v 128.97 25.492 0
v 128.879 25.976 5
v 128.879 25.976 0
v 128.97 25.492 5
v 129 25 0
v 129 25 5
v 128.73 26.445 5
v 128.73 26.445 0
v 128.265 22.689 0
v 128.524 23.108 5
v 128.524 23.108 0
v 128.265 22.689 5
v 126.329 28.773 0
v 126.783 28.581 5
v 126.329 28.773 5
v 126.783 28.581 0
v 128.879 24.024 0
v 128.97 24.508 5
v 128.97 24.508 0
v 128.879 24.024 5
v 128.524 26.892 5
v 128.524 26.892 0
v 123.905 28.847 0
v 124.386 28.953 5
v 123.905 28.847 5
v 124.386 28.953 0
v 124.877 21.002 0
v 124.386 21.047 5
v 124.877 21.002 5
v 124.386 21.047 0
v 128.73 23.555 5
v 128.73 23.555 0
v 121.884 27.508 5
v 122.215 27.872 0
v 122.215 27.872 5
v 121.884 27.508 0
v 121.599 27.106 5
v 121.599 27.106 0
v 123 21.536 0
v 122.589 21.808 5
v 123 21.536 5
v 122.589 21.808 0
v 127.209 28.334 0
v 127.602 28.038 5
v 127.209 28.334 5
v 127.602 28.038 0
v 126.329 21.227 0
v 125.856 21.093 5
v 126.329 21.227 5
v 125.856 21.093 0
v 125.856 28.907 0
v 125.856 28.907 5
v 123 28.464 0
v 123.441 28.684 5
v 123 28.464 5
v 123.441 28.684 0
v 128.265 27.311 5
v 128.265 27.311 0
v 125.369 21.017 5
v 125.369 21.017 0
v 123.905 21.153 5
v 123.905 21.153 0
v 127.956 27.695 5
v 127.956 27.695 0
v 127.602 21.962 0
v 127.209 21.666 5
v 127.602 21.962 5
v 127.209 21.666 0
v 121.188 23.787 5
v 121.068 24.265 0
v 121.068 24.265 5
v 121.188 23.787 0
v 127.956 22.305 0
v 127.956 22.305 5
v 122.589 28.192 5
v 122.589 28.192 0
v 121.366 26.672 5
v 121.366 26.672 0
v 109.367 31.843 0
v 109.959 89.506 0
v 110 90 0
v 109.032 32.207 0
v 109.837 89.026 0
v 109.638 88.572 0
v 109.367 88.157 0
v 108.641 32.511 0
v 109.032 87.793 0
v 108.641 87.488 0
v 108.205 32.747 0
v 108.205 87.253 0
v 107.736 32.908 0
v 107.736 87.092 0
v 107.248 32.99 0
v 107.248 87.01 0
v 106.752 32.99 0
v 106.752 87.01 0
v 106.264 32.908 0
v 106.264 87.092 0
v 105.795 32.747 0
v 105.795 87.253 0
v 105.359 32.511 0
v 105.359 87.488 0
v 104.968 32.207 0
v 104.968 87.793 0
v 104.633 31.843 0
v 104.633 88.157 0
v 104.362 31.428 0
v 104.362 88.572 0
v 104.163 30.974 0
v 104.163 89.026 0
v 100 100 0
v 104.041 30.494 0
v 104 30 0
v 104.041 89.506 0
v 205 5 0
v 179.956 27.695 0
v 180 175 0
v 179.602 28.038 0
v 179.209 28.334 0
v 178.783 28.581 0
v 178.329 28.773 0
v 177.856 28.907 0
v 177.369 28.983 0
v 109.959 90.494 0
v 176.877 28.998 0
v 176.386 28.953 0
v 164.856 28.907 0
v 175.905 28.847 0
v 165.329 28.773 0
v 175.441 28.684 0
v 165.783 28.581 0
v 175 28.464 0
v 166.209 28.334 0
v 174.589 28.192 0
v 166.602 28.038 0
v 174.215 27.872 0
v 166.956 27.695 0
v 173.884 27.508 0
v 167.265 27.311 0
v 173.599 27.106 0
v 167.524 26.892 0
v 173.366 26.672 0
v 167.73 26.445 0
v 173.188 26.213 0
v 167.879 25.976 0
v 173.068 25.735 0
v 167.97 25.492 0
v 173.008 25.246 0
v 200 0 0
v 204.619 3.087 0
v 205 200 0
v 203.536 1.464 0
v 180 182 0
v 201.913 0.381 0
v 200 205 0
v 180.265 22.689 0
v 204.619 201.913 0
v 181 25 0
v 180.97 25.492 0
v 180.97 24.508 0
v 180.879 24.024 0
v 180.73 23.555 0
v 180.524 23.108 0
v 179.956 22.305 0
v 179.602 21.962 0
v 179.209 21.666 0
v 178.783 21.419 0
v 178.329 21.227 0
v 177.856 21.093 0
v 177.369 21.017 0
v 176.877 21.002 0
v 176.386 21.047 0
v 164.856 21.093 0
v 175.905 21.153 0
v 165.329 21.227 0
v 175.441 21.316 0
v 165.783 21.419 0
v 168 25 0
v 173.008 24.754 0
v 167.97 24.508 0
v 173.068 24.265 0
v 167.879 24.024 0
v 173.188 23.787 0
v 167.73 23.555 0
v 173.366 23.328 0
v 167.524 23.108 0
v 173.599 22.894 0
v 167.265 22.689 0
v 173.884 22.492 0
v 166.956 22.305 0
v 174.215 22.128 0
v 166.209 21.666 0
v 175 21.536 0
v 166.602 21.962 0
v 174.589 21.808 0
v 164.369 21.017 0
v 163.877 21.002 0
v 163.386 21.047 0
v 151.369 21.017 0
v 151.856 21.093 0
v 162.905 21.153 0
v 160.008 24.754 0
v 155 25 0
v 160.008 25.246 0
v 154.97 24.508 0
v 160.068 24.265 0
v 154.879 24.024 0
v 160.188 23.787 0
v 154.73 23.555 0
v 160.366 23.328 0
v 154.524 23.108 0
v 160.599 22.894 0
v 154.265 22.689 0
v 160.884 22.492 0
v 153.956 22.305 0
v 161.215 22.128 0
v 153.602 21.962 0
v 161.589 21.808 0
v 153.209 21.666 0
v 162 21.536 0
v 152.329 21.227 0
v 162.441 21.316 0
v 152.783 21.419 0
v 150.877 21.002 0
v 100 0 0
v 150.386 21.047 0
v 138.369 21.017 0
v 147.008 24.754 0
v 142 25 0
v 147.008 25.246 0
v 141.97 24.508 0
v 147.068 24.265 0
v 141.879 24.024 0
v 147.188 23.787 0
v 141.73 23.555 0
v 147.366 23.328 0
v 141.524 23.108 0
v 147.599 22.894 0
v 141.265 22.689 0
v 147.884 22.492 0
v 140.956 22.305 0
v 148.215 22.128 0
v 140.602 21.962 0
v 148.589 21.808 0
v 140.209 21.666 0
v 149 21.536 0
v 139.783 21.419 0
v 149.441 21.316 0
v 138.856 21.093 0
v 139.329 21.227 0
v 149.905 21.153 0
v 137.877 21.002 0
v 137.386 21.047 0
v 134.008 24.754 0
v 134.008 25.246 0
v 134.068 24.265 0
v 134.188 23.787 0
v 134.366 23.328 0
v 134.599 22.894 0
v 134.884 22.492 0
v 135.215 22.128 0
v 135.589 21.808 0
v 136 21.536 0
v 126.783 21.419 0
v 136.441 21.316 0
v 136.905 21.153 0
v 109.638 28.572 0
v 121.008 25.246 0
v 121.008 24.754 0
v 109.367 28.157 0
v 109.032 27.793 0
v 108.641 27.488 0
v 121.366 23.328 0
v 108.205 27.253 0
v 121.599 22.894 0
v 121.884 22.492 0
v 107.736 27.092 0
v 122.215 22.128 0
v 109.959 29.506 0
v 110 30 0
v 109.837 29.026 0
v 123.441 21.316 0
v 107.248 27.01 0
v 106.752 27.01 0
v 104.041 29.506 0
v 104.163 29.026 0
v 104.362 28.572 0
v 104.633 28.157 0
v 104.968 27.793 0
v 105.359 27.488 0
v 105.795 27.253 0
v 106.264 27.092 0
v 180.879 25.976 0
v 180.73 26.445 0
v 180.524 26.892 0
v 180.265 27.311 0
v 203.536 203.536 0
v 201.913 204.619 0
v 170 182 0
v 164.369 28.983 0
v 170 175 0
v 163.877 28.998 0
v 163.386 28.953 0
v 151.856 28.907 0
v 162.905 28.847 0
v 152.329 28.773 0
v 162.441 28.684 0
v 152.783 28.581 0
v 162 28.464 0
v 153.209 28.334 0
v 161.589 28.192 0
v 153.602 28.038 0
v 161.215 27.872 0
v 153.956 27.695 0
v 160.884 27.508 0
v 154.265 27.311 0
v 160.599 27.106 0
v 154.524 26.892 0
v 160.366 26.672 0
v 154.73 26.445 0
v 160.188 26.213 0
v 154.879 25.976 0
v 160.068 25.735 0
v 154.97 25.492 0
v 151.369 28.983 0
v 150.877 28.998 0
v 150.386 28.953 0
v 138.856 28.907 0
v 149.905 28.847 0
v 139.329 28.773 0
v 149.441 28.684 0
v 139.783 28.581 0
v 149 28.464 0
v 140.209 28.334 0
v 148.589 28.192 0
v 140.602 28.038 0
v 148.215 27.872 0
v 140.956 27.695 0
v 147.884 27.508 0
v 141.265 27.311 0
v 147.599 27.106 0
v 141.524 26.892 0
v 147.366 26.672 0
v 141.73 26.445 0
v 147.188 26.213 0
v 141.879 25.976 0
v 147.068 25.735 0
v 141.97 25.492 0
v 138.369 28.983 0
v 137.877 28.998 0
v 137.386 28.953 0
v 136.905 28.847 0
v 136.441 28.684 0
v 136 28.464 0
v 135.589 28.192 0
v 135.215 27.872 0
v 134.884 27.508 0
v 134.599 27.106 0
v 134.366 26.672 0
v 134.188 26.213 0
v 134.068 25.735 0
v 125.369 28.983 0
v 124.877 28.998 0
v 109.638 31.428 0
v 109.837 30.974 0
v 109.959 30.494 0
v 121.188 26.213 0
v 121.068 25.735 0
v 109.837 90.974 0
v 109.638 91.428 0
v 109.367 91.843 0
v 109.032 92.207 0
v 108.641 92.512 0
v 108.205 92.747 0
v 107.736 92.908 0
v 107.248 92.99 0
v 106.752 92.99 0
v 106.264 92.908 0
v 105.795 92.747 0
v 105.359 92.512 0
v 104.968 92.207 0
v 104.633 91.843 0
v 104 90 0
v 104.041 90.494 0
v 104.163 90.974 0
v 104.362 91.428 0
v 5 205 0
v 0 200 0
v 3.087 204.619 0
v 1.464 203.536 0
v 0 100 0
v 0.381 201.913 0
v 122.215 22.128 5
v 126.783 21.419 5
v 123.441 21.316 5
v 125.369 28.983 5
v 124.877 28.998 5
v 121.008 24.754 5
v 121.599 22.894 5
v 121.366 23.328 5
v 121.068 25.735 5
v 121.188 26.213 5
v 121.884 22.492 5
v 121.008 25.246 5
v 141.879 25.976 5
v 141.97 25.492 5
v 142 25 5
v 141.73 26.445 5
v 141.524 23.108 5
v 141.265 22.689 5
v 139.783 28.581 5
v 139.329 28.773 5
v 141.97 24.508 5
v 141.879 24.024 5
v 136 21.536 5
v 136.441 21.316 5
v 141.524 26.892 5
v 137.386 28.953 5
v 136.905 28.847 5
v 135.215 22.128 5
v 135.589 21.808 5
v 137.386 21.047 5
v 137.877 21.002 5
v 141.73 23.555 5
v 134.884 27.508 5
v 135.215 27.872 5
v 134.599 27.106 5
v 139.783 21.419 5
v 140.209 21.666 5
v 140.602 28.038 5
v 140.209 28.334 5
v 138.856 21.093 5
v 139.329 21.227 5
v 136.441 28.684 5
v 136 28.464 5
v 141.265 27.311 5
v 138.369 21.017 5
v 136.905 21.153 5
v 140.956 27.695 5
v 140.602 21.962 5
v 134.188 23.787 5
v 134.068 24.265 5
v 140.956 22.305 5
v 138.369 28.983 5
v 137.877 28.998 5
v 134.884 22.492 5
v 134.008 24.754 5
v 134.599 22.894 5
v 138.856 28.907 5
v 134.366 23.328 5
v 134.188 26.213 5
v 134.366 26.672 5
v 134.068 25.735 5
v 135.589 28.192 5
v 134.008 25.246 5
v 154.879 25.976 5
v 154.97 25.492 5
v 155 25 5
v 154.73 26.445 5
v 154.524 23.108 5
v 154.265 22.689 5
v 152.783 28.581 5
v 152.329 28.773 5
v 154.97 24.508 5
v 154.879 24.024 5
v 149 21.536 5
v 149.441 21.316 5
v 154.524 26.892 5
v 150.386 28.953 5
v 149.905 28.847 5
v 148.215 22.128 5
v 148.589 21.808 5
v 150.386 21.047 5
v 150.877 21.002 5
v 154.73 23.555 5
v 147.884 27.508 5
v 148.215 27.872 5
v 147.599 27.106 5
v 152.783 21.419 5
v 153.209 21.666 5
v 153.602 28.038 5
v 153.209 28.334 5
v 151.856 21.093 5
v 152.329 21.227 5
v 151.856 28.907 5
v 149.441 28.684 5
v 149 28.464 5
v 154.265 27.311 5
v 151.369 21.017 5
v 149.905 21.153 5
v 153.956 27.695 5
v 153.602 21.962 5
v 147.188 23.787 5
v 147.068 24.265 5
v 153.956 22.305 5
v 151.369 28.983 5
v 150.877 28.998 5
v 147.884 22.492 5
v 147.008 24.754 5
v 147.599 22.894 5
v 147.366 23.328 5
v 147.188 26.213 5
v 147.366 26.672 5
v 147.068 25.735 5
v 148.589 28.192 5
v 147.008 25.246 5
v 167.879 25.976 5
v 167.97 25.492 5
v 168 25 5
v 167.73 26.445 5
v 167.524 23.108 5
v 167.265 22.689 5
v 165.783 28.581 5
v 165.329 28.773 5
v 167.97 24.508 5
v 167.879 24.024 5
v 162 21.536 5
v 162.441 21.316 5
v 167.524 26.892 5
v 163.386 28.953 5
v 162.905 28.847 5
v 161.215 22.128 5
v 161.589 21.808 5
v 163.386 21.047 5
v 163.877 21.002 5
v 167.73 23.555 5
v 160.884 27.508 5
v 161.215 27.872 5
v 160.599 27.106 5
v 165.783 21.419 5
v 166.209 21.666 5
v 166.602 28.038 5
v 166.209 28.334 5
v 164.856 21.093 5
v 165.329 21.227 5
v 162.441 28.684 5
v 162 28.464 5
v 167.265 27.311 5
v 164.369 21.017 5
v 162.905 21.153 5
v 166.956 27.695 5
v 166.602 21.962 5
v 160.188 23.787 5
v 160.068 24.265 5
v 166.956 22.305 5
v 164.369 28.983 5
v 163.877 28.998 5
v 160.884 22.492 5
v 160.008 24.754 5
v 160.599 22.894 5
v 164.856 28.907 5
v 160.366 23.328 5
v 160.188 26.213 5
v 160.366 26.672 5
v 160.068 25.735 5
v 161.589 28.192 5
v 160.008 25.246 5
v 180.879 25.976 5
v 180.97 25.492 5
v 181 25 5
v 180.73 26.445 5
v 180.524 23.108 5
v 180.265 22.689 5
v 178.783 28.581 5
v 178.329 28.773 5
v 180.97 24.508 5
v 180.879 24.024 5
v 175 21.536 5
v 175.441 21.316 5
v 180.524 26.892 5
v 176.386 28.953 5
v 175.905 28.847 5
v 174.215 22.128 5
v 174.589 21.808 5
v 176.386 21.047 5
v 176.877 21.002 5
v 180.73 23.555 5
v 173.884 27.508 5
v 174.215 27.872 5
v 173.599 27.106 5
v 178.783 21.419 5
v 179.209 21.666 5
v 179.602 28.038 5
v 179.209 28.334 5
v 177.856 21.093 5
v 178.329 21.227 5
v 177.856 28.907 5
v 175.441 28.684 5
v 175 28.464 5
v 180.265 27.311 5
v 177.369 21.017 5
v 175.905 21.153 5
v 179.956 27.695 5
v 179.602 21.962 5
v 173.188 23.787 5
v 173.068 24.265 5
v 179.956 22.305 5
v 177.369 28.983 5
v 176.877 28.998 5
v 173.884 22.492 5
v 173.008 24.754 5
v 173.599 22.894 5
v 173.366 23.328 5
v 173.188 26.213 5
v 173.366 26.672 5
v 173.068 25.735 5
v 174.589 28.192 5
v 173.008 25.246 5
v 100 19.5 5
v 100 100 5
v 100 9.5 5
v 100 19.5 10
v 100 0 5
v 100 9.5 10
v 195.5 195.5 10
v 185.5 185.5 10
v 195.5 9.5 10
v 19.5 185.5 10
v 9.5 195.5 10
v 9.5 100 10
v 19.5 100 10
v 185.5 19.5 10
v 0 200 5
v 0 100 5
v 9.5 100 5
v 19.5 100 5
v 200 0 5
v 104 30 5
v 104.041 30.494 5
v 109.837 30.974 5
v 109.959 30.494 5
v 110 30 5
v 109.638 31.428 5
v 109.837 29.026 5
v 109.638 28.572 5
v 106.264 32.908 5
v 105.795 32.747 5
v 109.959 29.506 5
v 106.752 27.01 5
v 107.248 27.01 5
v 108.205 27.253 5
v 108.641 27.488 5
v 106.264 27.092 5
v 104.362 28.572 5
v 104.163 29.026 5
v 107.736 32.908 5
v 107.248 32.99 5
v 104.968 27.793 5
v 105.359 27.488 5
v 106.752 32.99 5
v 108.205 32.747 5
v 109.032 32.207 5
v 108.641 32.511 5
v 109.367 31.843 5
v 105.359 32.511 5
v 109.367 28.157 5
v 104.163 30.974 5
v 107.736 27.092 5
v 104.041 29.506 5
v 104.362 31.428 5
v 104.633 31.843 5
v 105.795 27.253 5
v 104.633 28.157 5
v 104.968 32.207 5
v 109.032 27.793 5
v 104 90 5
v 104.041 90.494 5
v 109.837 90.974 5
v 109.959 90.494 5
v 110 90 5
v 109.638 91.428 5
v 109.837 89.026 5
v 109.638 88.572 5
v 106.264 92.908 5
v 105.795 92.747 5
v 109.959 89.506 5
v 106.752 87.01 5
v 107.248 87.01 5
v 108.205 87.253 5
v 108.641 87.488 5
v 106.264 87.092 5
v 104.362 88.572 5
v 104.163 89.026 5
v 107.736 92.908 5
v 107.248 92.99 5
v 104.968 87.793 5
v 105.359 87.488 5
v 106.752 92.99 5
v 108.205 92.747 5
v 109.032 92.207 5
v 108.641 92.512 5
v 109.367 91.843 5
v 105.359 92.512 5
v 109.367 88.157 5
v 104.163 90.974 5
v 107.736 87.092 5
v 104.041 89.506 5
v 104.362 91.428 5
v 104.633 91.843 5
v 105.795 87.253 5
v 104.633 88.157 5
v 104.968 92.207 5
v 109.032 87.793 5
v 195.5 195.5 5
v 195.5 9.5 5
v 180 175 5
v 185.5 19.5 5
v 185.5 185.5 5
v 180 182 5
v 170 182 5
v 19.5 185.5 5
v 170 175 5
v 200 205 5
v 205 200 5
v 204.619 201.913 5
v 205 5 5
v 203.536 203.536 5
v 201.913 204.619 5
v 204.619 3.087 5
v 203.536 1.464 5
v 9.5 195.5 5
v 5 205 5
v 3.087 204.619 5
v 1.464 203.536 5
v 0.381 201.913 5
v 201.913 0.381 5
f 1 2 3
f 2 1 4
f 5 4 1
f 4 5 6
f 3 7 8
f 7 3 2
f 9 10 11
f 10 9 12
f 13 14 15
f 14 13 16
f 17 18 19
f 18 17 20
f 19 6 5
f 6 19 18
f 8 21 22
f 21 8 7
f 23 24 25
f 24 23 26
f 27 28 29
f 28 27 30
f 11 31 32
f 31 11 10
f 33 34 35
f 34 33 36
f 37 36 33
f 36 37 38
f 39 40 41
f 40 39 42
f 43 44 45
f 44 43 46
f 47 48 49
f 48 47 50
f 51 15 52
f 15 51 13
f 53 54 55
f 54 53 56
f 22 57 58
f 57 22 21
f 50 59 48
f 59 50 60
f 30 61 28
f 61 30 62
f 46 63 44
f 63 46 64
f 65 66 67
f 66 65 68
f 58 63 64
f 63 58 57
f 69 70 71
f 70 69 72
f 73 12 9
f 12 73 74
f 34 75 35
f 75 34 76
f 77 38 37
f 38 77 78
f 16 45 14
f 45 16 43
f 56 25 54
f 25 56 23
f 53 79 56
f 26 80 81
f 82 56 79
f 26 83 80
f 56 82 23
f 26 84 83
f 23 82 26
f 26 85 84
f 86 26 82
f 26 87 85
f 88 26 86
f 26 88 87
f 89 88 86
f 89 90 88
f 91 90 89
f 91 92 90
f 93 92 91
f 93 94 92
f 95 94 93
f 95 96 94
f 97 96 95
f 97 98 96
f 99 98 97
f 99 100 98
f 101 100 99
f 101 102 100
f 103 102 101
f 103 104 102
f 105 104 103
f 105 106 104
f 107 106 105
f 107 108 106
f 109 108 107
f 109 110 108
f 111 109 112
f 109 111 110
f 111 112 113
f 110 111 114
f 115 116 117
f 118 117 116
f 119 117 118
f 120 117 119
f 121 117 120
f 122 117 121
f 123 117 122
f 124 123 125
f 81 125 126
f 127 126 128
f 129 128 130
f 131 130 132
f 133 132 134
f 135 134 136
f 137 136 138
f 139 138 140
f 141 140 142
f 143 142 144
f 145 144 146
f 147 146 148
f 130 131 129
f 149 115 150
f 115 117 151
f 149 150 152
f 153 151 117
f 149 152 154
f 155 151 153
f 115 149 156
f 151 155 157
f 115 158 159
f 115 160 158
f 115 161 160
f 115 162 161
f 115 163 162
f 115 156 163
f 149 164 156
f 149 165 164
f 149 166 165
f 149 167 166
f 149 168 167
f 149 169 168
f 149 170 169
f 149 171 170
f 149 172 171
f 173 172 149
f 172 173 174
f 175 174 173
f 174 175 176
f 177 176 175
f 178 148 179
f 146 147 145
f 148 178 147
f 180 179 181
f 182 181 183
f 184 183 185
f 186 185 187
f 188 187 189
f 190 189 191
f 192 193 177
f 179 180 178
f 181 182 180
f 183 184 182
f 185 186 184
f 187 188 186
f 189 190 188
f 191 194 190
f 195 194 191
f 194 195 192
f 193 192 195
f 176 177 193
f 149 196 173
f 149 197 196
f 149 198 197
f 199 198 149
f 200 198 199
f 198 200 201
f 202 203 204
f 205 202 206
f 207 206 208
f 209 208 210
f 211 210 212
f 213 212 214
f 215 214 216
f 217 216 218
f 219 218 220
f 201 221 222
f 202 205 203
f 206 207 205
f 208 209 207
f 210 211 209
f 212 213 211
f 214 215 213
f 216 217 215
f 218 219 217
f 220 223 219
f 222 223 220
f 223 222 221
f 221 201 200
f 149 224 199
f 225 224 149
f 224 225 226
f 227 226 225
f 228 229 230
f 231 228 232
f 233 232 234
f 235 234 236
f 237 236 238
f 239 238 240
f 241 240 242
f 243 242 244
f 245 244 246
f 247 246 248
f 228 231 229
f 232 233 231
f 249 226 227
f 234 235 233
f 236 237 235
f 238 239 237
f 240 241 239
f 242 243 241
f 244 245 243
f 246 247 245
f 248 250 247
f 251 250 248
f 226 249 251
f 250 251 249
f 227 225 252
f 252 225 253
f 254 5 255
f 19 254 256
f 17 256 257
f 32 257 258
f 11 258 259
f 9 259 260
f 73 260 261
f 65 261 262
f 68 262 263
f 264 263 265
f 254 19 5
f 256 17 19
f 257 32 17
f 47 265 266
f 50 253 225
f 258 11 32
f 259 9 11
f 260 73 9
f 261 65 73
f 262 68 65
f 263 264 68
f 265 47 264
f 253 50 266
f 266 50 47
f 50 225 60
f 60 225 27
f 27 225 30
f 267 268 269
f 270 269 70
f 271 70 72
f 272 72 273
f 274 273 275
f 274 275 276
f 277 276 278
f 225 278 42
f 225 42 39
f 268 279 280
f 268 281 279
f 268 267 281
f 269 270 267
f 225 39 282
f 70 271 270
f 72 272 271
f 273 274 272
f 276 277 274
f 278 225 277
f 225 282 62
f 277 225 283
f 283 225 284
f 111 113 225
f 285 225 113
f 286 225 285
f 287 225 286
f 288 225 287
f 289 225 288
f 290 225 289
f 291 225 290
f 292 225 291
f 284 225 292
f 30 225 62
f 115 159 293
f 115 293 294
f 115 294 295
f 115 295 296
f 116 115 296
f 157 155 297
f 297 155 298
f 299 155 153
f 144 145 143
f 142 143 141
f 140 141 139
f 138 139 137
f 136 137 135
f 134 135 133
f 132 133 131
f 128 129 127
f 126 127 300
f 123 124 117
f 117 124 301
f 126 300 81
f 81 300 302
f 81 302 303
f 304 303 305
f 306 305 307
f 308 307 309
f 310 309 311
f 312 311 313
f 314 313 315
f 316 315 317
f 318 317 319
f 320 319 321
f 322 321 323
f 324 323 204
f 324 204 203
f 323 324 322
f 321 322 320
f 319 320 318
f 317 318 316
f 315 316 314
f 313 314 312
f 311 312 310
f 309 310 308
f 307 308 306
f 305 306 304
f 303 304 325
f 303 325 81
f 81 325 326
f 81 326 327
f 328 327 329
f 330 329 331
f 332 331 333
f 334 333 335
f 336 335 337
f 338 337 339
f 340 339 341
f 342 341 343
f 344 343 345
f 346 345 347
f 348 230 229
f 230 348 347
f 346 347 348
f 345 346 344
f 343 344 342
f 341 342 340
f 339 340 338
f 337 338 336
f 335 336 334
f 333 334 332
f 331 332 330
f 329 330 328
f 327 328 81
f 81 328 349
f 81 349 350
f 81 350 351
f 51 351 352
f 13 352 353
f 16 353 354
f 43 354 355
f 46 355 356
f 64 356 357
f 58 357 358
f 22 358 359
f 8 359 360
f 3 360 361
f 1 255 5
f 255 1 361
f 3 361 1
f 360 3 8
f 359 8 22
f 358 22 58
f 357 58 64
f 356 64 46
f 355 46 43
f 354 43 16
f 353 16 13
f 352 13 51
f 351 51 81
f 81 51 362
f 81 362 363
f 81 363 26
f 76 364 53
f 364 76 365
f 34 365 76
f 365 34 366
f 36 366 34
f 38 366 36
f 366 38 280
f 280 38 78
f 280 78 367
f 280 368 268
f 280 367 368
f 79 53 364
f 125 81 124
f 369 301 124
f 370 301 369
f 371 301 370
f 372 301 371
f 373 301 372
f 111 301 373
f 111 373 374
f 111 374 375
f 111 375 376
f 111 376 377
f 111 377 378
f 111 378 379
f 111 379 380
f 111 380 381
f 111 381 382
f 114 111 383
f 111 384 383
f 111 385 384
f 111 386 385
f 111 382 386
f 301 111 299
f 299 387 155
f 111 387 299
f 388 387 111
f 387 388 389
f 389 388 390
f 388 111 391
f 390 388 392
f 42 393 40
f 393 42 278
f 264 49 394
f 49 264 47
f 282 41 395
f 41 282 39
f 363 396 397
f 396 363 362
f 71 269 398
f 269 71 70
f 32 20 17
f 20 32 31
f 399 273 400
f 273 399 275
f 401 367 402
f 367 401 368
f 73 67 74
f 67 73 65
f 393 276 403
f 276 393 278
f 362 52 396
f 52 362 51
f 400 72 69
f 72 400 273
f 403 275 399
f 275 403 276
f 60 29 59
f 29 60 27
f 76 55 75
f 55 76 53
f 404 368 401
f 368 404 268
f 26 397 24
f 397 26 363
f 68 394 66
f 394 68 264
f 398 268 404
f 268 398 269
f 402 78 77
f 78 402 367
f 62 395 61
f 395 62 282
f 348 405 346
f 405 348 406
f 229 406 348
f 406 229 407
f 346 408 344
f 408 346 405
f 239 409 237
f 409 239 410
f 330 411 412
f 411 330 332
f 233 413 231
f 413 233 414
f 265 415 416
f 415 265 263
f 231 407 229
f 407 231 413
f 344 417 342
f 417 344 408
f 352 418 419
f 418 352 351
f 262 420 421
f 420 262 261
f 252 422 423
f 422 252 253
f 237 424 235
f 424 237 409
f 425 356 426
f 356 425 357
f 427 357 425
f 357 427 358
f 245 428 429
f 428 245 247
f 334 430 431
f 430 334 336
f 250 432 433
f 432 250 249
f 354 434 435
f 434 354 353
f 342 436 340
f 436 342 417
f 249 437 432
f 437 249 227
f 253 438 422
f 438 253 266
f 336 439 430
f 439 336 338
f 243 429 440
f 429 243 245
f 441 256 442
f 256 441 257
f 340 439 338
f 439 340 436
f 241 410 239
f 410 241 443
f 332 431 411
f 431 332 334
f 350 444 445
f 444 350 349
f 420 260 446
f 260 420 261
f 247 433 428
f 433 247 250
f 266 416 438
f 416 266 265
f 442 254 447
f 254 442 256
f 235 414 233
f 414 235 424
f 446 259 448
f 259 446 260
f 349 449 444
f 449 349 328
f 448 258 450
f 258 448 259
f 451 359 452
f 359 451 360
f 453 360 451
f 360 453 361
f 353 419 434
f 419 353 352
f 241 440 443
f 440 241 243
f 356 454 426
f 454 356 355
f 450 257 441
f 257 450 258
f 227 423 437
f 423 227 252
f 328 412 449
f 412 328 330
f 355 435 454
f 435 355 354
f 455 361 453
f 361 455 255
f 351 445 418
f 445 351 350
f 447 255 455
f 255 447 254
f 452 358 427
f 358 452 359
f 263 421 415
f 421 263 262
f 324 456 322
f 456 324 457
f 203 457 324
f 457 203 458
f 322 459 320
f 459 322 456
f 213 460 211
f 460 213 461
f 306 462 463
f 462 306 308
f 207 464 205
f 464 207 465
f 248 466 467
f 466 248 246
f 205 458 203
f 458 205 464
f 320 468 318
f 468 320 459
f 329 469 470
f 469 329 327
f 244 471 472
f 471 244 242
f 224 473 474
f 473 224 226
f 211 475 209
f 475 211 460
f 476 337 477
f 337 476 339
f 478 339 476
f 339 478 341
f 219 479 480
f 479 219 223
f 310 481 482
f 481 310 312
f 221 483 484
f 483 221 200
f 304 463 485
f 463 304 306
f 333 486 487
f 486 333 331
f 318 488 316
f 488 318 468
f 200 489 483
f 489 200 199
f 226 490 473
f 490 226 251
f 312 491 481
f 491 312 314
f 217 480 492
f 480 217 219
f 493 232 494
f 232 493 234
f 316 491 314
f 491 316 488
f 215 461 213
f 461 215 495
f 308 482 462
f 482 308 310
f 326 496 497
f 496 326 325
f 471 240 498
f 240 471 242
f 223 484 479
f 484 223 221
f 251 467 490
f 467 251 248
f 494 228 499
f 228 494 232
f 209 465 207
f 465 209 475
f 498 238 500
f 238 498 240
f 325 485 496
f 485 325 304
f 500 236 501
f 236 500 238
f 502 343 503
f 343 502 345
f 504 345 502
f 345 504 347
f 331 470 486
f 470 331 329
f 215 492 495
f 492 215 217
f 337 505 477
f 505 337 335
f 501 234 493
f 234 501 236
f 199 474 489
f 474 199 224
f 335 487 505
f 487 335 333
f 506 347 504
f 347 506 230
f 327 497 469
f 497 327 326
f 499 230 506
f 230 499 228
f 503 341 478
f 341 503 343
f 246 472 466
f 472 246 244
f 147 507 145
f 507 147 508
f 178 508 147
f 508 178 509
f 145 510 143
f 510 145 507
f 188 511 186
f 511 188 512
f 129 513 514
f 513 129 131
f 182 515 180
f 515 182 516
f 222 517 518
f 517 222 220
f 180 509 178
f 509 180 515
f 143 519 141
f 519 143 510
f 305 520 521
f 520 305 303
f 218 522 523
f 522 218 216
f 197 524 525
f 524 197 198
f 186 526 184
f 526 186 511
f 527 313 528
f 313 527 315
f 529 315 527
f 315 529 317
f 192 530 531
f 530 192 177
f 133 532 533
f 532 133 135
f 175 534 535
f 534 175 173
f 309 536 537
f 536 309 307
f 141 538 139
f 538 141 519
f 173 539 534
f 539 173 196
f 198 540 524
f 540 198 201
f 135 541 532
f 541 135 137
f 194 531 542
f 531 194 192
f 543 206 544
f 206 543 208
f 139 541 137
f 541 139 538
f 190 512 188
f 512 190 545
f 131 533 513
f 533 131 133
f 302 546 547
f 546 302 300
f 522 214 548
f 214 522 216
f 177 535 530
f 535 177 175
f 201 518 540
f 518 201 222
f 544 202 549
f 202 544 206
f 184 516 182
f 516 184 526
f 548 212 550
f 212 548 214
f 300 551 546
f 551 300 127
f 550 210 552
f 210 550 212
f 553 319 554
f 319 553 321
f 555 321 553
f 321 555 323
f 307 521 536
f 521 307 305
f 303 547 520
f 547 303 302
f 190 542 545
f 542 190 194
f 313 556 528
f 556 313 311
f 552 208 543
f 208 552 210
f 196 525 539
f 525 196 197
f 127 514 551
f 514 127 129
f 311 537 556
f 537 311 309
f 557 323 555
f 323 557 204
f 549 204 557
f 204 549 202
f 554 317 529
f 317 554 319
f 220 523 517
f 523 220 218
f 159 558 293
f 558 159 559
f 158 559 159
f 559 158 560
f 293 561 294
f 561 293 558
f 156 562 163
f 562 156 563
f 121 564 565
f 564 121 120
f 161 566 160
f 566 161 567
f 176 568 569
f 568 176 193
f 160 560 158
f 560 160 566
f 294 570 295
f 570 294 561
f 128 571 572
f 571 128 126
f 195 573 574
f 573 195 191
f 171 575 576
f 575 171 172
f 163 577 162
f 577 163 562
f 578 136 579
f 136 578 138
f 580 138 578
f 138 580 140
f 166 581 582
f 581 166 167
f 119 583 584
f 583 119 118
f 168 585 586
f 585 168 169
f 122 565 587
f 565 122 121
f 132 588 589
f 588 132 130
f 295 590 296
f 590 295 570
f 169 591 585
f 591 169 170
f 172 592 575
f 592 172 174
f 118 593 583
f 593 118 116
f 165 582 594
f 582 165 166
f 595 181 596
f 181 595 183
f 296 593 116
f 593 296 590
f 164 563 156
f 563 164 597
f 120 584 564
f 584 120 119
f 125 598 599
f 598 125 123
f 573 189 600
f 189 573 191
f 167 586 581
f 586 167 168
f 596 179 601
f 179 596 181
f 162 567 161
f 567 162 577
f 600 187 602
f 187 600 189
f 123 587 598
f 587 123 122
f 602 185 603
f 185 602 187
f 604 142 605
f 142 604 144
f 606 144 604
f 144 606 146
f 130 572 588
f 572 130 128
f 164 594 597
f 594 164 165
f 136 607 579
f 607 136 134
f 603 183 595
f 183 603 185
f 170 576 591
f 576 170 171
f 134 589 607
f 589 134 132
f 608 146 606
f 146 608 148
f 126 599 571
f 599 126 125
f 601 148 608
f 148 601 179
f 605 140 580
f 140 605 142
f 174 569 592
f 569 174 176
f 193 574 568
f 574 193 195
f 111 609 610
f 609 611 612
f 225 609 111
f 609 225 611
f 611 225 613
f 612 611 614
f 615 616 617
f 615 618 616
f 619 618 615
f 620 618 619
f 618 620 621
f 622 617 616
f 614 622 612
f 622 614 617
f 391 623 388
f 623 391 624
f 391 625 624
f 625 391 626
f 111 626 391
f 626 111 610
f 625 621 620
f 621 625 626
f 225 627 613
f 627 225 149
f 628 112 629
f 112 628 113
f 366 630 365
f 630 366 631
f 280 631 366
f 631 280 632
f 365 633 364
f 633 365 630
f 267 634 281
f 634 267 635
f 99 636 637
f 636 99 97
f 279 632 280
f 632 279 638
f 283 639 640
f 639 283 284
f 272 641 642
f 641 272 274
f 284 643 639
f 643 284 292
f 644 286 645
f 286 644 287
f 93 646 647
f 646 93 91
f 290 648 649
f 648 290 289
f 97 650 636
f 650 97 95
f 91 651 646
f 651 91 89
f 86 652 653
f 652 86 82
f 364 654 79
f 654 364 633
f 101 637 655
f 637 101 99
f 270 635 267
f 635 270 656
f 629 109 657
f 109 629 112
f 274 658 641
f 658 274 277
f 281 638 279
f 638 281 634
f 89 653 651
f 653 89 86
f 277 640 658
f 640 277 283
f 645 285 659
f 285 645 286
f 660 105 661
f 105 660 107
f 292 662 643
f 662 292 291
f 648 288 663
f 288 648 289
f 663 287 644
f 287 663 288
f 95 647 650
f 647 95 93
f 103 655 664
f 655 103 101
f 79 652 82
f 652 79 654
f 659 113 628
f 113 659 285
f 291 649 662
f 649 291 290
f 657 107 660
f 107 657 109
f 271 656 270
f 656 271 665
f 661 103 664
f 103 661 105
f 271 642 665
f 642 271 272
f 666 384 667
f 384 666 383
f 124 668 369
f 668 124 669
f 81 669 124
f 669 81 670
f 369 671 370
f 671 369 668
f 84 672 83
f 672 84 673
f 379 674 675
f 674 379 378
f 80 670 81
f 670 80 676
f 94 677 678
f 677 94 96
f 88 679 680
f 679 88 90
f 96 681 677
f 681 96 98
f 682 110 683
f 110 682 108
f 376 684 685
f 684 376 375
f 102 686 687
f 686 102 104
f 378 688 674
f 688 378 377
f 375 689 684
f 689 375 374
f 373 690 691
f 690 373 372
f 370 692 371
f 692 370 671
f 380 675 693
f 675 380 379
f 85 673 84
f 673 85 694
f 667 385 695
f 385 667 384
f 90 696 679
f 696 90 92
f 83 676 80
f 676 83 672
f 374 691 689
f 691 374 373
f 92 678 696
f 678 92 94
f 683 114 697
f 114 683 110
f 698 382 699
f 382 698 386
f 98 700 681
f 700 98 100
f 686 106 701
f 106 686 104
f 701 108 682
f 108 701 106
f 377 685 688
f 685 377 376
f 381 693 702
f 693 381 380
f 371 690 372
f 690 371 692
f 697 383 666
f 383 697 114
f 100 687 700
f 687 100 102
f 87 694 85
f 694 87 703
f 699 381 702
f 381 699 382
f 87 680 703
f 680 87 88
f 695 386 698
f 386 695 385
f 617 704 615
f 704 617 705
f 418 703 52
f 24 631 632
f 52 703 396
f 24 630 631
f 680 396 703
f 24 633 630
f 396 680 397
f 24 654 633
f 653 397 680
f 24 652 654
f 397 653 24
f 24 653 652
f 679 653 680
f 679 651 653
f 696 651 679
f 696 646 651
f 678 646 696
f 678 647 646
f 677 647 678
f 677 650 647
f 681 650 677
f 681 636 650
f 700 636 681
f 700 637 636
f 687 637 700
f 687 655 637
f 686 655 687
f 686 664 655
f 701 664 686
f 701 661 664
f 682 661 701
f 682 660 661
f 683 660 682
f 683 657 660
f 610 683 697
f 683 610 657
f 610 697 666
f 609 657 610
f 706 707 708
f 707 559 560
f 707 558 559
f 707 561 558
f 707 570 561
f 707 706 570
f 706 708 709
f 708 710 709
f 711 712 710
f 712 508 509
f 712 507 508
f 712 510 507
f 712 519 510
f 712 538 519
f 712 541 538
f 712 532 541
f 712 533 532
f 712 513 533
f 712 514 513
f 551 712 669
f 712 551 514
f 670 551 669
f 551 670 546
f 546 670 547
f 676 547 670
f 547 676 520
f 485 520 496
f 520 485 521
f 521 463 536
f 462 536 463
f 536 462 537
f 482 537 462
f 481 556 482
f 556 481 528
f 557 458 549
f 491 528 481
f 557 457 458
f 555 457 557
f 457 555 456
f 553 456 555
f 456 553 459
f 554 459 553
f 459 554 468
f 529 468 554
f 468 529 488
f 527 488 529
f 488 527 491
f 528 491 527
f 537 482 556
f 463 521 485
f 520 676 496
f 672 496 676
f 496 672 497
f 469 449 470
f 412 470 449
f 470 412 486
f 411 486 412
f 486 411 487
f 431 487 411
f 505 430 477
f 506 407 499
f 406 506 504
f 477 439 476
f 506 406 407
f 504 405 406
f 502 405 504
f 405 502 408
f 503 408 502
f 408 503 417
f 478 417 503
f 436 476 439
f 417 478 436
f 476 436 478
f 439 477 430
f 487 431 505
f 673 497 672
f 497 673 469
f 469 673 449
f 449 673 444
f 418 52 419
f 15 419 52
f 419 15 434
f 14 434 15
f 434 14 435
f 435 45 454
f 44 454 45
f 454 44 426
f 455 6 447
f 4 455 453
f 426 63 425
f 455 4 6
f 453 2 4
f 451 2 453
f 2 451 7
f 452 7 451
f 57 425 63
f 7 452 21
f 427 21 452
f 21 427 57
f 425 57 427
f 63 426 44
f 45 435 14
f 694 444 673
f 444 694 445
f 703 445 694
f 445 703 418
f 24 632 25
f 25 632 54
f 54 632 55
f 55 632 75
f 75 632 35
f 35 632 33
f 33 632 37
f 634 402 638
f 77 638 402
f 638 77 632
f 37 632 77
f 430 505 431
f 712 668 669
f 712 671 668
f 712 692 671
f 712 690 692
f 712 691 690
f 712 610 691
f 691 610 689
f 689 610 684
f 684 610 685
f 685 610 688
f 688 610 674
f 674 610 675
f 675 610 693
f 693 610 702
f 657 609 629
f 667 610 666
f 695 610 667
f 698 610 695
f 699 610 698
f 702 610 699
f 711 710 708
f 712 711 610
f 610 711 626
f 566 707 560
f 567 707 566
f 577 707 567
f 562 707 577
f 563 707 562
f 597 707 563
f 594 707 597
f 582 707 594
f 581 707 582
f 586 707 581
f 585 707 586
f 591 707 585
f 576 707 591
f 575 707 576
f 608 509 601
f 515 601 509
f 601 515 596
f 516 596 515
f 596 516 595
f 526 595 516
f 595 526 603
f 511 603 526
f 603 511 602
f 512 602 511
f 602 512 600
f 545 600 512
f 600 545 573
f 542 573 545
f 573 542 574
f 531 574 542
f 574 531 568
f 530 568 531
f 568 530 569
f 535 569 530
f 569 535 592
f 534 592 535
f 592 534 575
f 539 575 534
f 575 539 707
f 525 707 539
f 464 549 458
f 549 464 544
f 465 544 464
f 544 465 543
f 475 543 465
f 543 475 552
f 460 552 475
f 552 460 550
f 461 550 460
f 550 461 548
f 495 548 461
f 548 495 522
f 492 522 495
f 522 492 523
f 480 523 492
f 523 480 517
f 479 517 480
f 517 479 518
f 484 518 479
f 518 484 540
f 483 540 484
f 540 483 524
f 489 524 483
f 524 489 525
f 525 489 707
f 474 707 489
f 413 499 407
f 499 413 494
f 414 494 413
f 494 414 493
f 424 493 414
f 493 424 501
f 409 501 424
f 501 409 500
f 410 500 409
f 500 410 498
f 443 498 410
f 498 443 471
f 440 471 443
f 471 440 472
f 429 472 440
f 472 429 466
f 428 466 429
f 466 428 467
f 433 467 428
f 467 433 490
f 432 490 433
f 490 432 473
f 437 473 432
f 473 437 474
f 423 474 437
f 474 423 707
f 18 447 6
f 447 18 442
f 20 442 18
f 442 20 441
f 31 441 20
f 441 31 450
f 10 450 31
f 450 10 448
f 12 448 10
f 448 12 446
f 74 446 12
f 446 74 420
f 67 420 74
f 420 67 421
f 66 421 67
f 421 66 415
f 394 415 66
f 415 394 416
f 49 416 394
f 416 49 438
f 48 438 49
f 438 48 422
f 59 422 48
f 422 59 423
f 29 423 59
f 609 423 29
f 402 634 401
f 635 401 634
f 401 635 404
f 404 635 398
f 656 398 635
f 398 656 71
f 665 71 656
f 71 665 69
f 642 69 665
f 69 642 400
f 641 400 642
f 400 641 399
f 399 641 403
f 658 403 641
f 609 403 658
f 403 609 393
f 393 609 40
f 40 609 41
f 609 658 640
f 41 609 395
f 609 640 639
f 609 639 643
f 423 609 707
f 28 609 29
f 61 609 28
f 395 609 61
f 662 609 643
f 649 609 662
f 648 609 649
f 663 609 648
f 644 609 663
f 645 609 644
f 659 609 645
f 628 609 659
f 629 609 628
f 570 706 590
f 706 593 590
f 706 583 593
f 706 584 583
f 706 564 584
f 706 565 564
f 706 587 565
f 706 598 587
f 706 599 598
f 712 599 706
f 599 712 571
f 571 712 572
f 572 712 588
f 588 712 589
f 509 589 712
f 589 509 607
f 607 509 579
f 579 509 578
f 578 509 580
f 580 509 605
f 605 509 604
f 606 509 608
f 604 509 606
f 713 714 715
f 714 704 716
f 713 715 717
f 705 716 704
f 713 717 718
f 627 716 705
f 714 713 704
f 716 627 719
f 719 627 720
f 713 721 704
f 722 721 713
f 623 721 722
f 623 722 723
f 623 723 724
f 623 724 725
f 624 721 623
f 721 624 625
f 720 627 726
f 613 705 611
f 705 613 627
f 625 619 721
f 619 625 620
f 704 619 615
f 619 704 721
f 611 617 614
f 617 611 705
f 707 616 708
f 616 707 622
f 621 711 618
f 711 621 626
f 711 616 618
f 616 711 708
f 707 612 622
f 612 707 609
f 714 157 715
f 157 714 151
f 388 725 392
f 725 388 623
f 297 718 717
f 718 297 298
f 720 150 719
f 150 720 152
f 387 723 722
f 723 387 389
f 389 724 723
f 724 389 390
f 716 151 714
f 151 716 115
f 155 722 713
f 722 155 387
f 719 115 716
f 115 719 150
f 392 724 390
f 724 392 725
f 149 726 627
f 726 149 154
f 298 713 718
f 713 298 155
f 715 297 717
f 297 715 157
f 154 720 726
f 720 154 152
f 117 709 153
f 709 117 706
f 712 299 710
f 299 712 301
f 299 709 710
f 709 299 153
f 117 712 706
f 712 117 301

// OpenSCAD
difference()
{
    main();
    pipes();
    adapter();
    split();
}

// main
width = 200;
radius = 5;
// addon   
border = 14;

//////////
// Case //
//////////
module main() {
    translate ([5, 5, 0]) {
        union()
        {
            main_positiv();
            main_addon();
        }
    }
}

module main_addon() {
    difference()
    {
        main_addon_positiv();
        main_addon_negative();
    }
}

module main_addon_positiv() {
    t = (border-radius) / 2;
    w = width - border;
    
    translate ([t, t, 5]) {
        cube([w, w, 5]);
    }
}

module main_addon_negative() {
    l = 10;
    
    t = ((border-radius) / 2) + l;
    w = width - border - 2*l;
    
    translate ([t, t, 5]) {
        color("red"){
            cube([w, w, 5]);
        }
    }
}

module main_positiv() {
    w = width - radius;
    
    minkowski() {
        cube([w, w, 1]);
        cylinder(r=radius,h=4);
    }
}


// Pipe //
module pipes() {
    count = 5;
    pipe_width = 8;
    space = 5;
    
    translate([125,25,0]) {
        union() {
            for (i = [0:4]) {
                translate([((pipe_width + space) * i), 0, 0]) {
                    pipe();
                }
            }
        }
    }
}

module pipe() {
    cylinder(r=4, h=10, $fa=0.5, $fs=0.5);
}

// Adapter //
module adapter() {
    height = 10;
    length = 10;
    width = 7;
                    
    translate([170, 175, 0]) {
        cube([length, width, height]);  
    }
}

module split() {          
    cube([100, 100, 10]);  
           
    translate([107, 30, 0]) {
       cylinder(r=3, h=10, $fa=0.5, $fs=0.5);  
    }
                 
    translate([107, 90, 0]) {
       cylinder(r=3, h=10, $fa=0.5, $fs=0.5); 
    }
}
